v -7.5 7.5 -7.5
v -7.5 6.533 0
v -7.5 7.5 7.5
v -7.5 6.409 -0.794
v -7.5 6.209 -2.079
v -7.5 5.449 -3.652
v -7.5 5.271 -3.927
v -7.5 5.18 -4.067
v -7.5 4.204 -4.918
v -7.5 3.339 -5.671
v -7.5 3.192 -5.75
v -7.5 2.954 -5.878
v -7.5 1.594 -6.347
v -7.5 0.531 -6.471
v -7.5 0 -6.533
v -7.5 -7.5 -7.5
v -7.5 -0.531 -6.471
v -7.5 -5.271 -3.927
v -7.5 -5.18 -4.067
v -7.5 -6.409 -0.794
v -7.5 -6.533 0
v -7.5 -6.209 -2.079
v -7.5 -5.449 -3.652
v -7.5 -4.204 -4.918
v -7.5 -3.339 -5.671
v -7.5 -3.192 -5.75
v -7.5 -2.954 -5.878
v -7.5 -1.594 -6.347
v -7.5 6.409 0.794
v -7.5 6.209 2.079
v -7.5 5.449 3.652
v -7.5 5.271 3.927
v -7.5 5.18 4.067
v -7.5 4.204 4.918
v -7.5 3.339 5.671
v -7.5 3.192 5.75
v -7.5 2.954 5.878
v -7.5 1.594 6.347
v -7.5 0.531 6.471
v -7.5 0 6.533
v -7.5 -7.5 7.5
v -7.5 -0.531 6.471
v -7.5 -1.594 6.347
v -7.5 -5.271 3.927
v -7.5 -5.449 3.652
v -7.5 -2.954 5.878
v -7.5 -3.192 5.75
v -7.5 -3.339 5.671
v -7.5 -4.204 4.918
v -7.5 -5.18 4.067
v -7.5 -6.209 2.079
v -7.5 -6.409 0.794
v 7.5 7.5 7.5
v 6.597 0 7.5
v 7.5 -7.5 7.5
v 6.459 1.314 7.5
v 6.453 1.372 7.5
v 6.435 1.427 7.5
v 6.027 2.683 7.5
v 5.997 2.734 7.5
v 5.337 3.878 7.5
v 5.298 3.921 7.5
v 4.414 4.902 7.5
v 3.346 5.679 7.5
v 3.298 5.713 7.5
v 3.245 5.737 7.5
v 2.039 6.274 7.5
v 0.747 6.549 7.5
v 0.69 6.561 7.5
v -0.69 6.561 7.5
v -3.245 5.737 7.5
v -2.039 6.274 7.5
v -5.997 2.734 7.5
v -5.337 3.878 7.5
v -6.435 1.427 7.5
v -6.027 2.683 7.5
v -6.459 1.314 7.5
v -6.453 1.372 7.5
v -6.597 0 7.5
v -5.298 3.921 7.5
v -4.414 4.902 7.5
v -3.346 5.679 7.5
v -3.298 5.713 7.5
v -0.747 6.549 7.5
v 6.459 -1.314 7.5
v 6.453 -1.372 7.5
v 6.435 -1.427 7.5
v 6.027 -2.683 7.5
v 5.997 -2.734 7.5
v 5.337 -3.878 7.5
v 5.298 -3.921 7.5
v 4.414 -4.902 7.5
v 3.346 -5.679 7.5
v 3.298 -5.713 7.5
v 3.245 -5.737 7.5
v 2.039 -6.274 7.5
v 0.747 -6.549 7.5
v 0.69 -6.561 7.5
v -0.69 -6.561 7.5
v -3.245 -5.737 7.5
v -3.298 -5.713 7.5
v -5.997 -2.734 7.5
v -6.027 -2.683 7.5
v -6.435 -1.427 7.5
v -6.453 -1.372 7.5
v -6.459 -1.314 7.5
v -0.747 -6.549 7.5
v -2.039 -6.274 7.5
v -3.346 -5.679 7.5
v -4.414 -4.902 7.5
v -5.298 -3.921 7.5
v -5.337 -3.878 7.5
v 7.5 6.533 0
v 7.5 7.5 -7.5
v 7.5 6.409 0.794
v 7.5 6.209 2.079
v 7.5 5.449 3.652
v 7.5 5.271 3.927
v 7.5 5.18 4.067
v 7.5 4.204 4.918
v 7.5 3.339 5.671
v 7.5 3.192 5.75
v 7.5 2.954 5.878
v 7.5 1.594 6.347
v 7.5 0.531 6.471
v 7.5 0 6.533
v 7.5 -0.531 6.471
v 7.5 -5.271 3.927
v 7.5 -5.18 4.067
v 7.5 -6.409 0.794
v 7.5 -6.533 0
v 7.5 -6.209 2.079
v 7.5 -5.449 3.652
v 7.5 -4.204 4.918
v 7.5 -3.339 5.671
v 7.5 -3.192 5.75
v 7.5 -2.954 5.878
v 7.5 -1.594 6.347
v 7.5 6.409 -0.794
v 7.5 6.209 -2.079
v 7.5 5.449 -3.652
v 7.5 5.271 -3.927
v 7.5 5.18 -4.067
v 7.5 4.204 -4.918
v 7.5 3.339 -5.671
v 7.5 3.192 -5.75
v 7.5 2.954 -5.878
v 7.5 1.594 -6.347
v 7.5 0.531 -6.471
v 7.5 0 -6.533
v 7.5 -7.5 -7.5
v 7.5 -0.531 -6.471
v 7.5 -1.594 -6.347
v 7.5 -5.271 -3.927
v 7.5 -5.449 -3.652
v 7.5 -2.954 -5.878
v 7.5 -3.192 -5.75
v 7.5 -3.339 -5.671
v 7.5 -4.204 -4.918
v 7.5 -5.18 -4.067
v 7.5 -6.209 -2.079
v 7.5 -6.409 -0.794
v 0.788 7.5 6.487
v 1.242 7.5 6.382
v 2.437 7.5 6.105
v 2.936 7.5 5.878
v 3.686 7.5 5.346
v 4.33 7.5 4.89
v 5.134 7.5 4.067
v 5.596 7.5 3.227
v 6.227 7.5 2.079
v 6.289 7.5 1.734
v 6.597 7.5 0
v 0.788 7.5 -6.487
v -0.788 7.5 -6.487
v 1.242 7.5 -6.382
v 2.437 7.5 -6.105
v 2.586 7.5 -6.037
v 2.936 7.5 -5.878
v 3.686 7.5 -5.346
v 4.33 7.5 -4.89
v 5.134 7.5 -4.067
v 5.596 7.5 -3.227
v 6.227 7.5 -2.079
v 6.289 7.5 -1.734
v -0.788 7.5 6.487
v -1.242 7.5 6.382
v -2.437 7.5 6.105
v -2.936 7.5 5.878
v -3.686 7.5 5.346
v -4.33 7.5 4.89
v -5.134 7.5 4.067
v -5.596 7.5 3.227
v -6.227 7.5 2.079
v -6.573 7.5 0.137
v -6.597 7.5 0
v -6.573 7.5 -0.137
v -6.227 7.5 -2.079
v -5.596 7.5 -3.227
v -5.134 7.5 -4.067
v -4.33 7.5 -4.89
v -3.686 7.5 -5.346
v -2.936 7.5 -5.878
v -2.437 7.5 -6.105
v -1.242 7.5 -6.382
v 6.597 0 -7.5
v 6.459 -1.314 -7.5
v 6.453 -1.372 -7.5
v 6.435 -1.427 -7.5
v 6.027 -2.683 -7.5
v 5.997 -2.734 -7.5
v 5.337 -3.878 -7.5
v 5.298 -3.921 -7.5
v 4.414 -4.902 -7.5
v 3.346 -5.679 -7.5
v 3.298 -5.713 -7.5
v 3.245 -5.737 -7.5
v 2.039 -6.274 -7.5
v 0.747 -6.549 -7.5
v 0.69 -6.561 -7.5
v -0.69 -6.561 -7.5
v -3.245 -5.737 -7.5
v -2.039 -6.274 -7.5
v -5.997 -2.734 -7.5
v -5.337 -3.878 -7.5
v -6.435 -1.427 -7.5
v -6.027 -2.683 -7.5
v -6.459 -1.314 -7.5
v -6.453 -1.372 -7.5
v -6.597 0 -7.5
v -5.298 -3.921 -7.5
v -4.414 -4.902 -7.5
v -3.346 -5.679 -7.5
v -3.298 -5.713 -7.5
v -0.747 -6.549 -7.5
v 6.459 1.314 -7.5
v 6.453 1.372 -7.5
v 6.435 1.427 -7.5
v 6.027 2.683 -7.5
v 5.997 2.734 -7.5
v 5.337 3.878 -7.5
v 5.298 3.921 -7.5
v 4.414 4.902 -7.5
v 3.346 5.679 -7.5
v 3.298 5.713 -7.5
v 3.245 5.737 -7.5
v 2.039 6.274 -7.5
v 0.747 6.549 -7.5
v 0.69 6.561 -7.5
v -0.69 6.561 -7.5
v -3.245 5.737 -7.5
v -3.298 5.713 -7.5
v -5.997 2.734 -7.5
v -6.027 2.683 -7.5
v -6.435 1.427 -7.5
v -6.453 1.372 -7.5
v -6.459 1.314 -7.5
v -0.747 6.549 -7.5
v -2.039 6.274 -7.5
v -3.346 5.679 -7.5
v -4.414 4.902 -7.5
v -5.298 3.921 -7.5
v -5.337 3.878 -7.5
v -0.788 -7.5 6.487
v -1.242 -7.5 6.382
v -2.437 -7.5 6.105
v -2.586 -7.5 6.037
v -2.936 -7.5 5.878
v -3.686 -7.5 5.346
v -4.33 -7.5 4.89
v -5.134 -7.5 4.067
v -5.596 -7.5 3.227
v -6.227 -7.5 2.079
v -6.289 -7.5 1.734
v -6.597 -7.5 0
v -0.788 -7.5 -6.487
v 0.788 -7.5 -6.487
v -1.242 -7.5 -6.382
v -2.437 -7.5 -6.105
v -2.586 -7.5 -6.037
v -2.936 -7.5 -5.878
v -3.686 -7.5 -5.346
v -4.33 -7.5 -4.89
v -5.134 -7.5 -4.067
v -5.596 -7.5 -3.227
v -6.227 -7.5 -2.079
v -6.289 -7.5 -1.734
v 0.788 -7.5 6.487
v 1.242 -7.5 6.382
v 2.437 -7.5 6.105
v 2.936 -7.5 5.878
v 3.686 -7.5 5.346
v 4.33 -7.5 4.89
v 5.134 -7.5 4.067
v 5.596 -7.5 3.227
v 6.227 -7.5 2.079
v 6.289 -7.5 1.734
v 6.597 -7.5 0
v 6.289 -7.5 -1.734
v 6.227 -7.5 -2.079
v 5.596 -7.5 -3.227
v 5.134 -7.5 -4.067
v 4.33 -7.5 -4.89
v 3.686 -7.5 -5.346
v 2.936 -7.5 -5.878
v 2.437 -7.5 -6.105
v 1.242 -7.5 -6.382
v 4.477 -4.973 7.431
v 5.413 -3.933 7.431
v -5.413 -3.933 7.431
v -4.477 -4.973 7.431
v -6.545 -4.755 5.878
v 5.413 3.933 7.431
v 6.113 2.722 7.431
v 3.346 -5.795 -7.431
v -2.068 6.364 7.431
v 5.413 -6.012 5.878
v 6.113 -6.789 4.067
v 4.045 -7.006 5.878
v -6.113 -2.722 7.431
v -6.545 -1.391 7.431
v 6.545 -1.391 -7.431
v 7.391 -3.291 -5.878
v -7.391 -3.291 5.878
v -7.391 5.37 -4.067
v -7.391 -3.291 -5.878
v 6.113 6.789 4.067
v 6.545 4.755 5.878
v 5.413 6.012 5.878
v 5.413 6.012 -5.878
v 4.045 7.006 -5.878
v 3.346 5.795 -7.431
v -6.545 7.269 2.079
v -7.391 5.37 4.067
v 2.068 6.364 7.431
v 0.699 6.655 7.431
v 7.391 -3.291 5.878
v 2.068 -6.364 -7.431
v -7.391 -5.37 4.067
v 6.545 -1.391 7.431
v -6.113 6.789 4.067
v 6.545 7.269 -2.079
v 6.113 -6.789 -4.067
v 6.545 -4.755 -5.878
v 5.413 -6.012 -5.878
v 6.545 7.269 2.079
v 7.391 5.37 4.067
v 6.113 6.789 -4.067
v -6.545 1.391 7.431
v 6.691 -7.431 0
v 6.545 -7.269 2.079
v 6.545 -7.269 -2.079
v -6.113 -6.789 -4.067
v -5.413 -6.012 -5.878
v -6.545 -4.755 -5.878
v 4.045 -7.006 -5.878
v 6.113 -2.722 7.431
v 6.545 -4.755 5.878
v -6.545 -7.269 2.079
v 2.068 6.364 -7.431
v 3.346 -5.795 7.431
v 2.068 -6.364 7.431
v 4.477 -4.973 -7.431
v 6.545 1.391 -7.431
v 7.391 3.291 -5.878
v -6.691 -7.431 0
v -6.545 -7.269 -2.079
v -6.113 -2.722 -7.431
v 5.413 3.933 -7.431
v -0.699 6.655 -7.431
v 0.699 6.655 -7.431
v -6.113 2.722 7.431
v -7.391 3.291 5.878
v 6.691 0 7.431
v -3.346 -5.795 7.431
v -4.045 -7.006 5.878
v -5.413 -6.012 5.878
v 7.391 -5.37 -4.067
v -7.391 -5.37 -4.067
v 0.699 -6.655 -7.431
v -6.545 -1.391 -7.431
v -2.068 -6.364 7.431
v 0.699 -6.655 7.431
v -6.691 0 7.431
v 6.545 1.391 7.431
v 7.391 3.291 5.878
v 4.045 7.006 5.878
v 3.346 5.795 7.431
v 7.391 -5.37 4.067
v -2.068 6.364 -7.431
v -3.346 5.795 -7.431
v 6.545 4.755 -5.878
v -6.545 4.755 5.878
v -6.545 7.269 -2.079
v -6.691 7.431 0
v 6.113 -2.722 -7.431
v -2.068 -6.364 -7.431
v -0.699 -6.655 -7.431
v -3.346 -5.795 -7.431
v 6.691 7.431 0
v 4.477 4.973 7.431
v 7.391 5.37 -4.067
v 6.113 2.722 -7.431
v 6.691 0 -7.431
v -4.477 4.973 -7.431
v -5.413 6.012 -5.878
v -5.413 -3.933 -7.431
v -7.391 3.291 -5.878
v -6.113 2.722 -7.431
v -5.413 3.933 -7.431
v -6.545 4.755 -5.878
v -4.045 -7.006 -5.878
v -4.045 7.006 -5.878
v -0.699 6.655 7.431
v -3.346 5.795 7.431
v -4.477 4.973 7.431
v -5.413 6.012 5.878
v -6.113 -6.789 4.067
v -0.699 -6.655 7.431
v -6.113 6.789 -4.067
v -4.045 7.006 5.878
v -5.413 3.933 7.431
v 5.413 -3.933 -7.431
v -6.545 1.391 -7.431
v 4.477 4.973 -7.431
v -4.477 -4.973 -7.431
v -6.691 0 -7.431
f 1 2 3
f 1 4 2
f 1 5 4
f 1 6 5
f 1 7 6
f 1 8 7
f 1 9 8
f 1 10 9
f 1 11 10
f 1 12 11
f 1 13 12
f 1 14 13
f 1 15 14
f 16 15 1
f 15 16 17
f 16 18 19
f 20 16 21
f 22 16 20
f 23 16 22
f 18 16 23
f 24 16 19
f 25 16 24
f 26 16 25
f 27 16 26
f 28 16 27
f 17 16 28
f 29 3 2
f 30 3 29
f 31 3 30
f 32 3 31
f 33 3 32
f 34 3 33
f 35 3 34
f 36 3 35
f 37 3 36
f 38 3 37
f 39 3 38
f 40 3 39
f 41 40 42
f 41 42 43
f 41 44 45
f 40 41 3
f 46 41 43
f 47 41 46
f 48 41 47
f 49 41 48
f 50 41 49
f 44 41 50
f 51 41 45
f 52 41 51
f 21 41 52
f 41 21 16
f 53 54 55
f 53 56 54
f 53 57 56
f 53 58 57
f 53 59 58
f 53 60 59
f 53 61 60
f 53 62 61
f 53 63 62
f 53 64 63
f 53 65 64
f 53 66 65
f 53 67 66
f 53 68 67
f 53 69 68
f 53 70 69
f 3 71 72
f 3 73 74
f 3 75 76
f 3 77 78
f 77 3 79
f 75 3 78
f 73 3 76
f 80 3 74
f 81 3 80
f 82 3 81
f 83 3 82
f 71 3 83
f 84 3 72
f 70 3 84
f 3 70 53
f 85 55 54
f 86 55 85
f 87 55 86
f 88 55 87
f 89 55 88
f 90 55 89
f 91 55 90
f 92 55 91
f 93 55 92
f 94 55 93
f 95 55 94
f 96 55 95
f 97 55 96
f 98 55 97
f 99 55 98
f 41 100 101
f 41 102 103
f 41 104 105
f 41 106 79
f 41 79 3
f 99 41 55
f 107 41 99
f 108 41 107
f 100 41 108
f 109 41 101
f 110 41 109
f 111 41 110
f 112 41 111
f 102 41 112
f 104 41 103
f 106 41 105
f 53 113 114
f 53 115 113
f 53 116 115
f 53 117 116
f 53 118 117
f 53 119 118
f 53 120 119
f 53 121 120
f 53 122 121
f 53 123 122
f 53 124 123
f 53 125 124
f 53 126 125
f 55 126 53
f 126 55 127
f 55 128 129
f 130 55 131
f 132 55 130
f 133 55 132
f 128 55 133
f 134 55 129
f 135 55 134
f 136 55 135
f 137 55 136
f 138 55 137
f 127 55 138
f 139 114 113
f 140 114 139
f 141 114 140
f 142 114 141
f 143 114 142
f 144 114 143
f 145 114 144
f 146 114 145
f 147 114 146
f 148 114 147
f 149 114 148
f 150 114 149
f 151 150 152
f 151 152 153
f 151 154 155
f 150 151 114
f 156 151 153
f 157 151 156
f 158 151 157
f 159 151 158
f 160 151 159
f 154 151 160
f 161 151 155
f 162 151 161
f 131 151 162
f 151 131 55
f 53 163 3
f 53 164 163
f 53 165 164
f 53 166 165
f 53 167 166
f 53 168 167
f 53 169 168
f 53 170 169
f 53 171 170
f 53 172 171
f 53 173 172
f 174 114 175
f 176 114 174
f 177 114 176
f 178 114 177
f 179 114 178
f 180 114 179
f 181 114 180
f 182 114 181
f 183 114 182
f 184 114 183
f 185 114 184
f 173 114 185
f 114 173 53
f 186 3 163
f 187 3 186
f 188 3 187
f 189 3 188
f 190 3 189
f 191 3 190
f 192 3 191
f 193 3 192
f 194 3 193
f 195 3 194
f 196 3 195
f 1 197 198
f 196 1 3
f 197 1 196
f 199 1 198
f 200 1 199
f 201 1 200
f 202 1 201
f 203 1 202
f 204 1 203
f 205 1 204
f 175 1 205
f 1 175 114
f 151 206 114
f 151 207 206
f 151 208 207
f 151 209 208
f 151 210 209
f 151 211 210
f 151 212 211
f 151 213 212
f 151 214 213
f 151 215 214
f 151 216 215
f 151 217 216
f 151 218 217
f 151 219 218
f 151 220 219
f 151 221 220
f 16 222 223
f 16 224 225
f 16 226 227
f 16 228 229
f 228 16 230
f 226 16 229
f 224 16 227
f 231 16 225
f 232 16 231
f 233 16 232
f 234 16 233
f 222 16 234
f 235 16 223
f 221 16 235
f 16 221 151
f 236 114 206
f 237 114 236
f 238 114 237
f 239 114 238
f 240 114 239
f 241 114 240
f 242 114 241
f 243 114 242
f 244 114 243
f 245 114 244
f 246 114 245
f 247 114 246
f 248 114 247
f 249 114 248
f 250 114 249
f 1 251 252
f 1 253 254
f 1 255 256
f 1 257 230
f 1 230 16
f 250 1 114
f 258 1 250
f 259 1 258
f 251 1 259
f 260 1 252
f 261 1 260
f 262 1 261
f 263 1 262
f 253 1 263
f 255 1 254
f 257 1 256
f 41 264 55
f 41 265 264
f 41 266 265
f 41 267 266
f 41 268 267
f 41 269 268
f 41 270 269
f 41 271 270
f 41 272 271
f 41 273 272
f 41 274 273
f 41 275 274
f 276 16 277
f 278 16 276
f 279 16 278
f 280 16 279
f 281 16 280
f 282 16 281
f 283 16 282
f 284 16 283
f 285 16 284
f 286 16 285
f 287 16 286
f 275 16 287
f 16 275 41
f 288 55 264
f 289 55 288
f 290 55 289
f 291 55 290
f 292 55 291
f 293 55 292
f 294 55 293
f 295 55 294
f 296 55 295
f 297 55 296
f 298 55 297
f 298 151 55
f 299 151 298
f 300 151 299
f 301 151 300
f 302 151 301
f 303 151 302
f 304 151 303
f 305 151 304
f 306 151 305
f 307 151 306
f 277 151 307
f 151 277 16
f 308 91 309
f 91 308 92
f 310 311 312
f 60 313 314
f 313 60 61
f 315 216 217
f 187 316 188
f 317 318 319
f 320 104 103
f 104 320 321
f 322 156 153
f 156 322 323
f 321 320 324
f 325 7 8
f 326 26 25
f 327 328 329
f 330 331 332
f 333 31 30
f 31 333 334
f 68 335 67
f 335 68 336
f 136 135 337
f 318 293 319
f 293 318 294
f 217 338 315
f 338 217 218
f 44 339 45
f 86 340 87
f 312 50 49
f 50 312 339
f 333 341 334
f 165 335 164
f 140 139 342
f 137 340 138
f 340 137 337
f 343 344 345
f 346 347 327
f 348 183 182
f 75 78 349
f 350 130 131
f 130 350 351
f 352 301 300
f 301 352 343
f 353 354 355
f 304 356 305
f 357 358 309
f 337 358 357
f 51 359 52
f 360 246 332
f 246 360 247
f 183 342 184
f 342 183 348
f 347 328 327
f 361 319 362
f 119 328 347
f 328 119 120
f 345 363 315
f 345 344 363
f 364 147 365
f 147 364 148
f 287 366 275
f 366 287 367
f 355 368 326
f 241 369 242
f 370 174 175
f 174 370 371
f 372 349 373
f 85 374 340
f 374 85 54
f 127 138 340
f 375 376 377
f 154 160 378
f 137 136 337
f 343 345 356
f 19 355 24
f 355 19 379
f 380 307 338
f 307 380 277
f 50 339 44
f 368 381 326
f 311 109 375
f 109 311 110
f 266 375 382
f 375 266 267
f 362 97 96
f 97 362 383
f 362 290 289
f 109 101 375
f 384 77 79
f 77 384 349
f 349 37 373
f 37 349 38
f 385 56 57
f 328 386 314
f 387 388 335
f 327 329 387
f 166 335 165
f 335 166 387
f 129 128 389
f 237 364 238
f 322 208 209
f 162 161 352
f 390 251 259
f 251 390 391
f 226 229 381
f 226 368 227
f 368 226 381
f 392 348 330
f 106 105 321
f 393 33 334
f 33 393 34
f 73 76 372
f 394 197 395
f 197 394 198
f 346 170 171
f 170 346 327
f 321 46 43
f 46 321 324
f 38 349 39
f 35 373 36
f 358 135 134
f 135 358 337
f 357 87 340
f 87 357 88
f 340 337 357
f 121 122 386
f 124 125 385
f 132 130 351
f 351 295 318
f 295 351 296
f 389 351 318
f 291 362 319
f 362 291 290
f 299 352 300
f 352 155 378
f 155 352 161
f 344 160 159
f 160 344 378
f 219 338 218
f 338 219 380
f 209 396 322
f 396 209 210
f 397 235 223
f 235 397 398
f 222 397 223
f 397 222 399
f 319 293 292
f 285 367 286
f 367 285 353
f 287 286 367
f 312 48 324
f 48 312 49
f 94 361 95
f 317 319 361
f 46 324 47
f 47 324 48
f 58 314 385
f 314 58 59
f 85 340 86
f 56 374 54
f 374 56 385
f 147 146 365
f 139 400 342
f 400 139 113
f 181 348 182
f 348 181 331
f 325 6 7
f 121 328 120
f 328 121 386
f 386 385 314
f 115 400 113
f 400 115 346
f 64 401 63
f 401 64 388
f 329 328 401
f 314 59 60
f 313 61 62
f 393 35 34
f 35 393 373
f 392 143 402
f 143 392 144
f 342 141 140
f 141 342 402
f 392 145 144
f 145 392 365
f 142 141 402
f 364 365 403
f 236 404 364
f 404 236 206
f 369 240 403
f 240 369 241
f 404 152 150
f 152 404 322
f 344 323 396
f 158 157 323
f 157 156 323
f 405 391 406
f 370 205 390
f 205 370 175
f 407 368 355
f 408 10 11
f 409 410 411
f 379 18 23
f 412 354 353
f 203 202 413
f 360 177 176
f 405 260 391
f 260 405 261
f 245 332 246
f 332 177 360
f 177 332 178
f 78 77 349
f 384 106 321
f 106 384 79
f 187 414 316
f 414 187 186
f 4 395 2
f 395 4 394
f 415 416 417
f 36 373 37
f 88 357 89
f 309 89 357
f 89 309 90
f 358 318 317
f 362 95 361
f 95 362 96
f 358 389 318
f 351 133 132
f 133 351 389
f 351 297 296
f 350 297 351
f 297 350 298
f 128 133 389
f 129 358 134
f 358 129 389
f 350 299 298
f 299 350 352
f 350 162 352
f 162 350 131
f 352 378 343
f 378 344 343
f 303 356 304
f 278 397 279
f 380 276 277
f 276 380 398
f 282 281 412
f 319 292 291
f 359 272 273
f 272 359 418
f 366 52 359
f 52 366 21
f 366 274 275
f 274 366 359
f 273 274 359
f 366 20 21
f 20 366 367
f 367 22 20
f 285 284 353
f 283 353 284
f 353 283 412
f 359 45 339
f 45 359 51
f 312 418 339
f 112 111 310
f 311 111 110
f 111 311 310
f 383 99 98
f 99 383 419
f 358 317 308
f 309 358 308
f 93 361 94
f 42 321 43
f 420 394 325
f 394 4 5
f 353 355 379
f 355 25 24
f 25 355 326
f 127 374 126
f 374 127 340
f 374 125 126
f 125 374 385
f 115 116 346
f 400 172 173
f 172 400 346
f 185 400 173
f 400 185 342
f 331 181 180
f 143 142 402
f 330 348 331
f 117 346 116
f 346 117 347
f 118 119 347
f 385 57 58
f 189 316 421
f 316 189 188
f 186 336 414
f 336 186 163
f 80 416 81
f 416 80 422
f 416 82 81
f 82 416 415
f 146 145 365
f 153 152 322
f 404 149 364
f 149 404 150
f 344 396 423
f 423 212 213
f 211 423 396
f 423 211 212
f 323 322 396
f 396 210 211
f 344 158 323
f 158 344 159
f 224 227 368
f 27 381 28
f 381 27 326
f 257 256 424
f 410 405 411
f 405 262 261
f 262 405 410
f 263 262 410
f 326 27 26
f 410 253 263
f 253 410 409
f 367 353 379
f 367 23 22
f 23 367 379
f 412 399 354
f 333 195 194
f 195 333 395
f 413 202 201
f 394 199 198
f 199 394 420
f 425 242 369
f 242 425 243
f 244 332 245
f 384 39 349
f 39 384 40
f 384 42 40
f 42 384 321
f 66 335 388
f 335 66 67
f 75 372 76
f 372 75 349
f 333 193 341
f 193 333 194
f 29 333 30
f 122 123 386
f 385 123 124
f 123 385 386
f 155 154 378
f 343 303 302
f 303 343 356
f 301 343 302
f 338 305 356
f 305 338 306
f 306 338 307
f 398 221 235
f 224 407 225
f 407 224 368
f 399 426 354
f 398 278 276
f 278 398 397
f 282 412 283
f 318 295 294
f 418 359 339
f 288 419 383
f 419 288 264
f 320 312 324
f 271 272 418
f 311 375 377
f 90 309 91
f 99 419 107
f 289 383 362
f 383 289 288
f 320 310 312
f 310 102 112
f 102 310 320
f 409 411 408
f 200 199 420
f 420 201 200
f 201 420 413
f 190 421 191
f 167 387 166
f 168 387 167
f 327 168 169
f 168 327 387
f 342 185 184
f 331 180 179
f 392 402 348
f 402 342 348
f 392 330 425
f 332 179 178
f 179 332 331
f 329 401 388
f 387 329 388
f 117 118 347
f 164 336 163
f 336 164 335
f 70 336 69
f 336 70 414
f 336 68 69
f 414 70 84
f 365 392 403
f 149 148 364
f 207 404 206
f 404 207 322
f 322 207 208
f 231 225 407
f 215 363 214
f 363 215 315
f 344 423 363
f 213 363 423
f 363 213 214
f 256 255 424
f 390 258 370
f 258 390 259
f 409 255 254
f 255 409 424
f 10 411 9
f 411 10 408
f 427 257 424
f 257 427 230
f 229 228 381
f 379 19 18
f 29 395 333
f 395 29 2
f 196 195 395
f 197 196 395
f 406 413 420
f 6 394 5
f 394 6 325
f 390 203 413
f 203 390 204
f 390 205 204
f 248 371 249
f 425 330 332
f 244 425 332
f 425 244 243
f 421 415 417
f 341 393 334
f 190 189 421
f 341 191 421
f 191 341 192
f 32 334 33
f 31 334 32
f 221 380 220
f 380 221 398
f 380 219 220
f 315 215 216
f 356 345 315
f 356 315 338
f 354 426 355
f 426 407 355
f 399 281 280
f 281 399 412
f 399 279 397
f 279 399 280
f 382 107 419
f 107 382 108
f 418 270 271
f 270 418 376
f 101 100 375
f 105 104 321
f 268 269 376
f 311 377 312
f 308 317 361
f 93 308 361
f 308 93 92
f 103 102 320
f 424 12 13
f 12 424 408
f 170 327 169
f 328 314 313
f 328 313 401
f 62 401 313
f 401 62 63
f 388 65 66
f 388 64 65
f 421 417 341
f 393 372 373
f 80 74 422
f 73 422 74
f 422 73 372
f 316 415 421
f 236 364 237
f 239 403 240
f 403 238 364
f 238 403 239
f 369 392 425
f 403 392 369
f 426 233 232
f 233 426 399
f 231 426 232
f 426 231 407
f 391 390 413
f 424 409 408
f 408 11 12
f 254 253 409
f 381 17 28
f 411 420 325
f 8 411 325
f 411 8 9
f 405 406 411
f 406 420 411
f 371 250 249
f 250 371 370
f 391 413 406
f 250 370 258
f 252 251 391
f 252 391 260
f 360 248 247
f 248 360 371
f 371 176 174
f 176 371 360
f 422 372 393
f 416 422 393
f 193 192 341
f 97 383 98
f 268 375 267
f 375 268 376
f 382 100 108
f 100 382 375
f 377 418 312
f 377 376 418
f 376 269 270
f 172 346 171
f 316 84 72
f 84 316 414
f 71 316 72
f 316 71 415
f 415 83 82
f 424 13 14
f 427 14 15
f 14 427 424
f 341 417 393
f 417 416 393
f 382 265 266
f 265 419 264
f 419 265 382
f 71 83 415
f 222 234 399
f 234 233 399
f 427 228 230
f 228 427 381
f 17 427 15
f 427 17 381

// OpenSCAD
// b.scad 
difference() {
    cube(15, center=true);
    sphere(10);
}
